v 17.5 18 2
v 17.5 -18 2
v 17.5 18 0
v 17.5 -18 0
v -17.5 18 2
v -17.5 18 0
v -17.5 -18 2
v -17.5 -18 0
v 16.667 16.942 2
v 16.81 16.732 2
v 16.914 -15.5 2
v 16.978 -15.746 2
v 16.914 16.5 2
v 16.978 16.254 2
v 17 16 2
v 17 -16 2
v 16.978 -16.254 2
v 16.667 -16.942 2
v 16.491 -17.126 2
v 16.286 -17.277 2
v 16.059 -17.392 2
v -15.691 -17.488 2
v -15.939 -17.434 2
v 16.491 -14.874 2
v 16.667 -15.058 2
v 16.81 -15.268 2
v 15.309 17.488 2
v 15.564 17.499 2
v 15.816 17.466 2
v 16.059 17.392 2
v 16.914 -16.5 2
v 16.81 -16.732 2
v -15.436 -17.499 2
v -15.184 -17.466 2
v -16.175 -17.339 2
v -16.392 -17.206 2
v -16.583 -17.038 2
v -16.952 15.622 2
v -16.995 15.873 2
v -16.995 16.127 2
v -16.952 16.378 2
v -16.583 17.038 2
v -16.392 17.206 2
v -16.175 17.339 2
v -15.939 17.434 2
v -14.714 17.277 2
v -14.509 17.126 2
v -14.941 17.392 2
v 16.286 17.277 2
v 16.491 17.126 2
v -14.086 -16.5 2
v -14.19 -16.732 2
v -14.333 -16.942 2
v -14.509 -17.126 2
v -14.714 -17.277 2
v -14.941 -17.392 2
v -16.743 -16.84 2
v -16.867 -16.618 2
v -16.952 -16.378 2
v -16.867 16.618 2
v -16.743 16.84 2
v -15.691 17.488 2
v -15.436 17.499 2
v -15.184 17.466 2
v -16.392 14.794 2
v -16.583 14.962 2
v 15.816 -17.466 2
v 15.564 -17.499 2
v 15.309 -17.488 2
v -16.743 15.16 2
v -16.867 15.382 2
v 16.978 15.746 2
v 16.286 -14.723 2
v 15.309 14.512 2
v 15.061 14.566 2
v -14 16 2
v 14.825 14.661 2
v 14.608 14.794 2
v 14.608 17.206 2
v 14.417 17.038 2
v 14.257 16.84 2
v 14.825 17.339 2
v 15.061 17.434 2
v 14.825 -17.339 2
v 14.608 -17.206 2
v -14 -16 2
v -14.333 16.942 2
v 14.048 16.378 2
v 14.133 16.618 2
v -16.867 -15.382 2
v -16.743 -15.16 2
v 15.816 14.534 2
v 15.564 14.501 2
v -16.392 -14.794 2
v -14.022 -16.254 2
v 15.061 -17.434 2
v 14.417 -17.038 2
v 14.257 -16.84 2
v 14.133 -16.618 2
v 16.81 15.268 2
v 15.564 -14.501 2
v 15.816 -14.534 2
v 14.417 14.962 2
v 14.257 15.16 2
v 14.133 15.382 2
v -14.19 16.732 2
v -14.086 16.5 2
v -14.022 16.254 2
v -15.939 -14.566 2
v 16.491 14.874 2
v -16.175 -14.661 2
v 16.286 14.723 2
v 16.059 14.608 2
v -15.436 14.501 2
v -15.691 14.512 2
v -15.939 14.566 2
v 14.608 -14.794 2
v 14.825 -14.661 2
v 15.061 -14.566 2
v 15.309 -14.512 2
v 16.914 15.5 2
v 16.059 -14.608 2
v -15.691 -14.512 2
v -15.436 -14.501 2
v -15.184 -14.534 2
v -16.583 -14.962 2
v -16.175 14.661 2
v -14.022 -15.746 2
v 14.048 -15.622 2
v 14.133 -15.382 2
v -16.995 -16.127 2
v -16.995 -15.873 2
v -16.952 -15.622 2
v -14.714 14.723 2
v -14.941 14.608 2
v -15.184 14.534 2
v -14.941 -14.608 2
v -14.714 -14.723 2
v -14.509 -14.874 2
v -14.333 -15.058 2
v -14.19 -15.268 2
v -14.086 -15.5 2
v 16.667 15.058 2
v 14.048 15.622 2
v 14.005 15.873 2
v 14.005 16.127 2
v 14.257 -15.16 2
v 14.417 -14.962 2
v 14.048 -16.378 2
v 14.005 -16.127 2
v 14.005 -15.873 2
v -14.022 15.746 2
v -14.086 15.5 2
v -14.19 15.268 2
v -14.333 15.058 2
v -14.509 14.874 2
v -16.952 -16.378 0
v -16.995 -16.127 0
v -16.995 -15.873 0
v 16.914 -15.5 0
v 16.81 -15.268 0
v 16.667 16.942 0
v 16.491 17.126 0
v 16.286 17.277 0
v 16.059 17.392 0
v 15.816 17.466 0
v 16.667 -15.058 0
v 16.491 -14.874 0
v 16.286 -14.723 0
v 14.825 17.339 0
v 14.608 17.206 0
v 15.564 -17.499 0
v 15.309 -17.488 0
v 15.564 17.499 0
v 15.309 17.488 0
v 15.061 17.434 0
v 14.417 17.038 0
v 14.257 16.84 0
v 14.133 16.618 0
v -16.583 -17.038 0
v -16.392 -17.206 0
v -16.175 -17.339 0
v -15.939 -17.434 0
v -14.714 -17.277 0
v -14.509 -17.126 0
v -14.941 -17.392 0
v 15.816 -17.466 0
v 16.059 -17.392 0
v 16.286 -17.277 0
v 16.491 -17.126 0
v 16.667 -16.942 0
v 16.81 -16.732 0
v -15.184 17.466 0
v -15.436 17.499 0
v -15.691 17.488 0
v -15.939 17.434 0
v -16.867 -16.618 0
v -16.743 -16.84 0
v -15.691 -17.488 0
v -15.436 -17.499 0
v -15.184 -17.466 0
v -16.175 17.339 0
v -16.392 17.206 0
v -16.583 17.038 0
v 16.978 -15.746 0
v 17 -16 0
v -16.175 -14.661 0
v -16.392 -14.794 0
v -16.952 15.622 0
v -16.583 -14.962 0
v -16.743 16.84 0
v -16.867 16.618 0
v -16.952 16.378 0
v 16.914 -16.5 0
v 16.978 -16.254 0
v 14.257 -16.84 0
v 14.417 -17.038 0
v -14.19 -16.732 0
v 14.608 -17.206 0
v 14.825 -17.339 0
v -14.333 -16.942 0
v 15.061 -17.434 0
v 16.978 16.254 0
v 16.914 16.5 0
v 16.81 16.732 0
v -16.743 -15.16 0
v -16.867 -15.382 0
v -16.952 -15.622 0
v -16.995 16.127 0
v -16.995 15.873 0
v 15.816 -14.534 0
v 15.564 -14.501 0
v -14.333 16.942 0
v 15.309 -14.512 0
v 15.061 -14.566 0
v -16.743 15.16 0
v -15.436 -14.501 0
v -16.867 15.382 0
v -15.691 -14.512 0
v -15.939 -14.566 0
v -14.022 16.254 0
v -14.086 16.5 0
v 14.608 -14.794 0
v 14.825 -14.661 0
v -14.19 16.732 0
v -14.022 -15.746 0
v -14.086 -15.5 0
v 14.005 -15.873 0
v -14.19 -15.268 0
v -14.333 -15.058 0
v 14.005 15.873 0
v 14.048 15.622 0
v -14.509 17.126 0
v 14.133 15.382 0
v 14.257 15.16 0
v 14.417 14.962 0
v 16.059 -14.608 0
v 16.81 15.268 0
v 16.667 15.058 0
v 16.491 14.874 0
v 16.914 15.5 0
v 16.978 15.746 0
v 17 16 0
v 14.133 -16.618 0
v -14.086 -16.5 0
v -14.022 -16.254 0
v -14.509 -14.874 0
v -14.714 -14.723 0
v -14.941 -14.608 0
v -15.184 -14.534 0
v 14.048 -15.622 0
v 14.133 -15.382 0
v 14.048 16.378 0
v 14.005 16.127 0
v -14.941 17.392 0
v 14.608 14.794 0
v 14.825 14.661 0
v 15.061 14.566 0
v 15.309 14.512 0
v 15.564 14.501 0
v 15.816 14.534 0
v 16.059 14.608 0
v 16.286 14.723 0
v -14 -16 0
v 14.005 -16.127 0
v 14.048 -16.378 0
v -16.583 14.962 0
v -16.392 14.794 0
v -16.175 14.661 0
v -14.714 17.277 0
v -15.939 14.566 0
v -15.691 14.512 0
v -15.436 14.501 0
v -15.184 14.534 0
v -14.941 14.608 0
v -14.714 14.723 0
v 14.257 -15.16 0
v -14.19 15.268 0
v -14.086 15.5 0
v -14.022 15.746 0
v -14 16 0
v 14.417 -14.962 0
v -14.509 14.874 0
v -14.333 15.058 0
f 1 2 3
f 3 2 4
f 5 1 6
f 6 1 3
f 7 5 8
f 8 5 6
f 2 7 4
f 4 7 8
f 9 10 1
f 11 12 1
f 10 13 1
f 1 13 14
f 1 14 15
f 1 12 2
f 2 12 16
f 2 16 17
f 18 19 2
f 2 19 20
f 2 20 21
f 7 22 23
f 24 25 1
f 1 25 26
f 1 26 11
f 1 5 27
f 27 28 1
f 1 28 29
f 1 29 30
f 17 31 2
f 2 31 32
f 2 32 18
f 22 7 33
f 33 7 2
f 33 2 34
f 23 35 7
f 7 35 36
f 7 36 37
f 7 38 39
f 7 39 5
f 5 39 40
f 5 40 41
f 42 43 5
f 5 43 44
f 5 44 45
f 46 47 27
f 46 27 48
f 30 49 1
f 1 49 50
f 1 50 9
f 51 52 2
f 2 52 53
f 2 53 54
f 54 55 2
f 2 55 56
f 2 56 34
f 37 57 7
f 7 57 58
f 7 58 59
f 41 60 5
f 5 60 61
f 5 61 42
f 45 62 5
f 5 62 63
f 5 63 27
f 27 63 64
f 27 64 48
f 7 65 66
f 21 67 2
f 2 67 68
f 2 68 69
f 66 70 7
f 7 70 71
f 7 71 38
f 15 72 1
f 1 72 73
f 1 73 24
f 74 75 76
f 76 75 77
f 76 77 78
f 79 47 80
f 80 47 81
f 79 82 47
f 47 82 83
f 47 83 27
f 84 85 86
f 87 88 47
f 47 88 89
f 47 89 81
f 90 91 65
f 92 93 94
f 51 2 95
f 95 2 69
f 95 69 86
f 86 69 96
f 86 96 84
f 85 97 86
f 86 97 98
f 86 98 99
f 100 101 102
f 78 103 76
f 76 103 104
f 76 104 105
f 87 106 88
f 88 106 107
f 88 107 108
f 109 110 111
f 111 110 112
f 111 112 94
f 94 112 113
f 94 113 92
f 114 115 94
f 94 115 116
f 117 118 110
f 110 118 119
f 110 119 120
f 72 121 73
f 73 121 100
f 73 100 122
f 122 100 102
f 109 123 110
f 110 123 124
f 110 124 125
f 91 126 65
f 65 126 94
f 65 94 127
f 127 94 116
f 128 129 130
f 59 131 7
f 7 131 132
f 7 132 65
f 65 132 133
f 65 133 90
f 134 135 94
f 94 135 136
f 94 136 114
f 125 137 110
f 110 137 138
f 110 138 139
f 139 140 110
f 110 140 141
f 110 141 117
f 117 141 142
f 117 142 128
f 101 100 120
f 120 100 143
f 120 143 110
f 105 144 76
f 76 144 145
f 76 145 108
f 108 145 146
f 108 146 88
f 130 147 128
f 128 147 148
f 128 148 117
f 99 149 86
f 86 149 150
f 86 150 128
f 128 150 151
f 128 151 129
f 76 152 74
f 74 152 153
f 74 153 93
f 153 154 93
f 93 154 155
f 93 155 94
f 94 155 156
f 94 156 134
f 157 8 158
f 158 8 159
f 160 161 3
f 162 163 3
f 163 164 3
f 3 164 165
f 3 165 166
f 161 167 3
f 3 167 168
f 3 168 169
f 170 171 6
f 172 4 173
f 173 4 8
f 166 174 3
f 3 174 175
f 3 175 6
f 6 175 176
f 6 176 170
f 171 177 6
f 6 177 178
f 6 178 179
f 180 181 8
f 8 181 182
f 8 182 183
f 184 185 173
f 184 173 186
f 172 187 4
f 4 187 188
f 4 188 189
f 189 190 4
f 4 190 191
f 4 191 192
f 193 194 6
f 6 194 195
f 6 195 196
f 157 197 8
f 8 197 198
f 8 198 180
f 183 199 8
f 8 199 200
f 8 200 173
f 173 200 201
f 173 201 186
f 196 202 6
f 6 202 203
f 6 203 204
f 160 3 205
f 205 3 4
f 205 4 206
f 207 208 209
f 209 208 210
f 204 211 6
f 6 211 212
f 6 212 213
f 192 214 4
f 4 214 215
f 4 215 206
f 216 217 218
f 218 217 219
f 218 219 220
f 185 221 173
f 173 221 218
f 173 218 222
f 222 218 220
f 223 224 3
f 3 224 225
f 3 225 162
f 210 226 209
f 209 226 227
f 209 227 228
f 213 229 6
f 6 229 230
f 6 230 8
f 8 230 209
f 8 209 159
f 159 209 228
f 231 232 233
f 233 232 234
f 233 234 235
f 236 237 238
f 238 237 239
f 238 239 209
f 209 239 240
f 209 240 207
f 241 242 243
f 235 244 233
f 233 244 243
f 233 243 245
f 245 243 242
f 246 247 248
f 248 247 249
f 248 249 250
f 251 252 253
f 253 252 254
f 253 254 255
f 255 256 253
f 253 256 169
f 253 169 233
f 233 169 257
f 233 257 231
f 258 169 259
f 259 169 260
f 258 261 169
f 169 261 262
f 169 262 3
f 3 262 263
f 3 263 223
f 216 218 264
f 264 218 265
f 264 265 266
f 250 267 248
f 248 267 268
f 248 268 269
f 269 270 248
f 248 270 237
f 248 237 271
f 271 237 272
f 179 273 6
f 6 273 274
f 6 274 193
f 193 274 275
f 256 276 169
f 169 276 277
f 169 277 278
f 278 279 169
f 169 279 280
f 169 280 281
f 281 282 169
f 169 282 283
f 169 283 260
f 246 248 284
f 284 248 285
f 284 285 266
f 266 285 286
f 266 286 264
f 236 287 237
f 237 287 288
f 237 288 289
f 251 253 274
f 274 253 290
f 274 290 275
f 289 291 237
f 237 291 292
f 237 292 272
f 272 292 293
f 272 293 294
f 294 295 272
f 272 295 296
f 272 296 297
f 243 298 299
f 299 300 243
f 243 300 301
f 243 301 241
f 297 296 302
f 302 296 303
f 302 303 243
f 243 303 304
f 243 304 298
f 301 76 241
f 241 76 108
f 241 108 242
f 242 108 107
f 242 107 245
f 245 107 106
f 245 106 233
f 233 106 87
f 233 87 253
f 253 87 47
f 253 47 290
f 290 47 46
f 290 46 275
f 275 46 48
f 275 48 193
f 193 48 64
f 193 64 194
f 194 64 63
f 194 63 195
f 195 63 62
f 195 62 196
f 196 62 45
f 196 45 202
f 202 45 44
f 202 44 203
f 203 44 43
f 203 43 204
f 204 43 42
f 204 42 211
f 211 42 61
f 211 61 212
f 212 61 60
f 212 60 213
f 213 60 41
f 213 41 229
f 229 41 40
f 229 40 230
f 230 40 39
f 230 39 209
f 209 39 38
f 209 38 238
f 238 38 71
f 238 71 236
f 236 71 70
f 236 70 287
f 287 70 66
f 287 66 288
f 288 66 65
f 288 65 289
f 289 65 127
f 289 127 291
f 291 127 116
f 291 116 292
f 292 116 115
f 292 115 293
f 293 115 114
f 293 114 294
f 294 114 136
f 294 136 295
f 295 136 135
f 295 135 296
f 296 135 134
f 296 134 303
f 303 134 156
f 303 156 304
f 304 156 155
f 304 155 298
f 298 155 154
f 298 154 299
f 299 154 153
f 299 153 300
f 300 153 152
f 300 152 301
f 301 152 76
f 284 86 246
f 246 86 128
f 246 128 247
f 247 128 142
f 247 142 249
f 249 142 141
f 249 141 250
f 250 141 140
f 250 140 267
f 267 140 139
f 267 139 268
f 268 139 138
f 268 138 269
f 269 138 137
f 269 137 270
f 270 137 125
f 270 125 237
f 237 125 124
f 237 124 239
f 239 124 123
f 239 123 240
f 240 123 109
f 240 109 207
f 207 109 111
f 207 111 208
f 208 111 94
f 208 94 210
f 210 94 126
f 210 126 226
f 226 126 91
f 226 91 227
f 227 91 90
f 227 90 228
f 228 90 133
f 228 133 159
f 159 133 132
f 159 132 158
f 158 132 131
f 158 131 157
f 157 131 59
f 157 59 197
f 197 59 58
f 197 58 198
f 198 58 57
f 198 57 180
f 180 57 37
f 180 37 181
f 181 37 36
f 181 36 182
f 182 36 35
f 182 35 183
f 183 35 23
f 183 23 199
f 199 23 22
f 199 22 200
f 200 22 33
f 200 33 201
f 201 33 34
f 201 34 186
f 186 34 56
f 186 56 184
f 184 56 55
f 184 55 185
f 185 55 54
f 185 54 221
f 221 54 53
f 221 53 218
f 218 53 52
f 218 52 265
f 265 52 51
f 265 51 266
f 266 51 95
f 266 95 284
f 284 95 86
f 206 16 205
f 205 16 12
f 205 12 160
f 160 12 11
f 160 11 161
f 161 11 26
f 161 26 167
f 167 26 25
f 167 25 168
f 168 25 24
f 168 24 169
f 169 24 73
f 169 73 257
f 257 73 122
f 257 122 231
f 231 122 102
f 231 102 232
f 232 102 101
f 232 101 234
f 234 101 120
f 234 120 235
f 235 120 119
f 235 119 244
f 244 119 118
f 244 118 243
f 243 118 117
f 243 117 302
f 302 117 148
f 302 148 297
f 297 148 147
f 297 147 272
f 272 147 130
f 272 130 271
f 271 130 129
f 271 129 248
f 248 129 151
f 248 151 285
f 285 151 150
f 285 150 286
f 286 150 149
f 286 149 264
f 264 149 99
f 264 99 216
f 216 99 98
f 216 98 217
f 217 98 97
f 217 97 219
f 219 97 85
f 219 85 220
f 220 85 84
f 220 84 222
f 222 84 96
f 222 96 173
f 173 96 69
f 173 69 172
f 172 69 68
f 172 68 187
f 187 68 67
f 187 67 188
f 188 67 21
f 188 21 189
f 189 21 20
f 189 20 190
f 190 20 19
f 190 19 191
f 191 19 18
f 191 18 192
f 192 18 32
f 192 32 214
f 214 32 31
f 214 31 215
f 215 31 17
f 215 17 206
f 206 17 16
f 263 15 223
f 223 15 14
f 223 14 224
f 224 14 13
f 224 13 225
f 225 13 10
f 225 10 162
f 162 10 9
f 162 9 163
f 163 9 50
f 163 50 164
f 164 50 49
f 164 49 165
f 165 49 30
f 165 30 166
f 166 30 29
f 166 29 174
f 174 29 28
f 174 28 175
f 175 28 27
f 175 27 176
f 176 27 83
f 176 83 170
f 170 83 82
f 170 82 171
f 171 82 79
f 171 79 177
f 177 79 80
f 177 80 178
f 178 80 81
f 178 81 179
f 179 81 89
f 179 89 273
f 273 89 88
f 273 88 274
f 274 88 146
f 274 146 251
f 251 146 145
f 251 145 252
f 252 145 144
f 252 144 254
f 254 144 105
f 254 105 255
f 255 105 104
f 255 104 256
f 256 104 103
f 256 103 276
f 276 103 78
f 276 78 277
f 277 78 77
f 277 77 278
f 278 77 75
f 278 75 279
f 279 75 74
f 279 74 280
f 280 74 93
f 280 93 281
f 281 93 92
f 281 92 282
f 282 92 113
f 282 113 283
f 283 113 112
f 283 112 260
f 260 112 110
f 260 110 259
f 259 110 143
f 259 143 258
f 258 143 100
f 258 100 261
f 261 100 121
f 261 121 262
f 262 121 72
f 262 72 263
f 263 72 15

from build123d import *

# Parameters (mm, degrees)
SKETCH_1_W          = 35
SKETCH_1_H          = 36
EXTRUDE_1_DEPTH     = 2
CUT_EXTRUDE_1_REACH = 27.184
SKETCH_2_R          = 1.5


with BuildPart() as part:
    # 草图1 → 凸台-拉伸1 (new body)
    with BuildSketch(Plane.XY):
        Rectangle(SKETCH_1_W, SKETCH_1_H)
    extrude(amount=EXTRUDE_1_DEPTH)

    # 草图2 → 切除-拉伸1 (cut, up to next)
    with BuildSketch(Plane.XY.offset(2), mode=Mode.PRIVATE) as cut_extrude_1_sk1:
        with Locations((-15.5, 16)):
            Circle(SKETCH_2_R)
    cut_extrude_1_tool1 = extrude(cut_extrude_1_sk1.sketch, amount=-CUT_EXTRUDE_1_REACH, mode=Mode.PRIVATE) & part.part
    # 草图2 → 切除-拉伸1 (cut, up to next)
    with BuildSketch(Plane.XY.offset(2), mode=Mode.PRIVATE) as cut_extrude_1_sk2:
        with Locations((15.5, 16)):
            Circle(SKETCH_2_R)
    cut_extrude_1_tool2 = extrude(cut_extrude_1_sk2.sketch, amount=-CUT_EXTRUDE_1_REACH, mode=Mode.PRIVATE) & part.part
    # 草图2 → 切除-拉伸1 (cut, up to next)
    with BuildSketch(Plane.XY.offset(2), mode=Mode.PRIVATE) as cut_extrude_1_sk3:
        with Locations((15.5, -16)):
            Circle(SKETCH_2_R)
    cut_extrude_1_tool3 = extrude(cut_extrude_1_sk3.sketch, amount=-CUT_EXTRUDE_1_REACH, mode=Mode.PRIVATE) & part.part
    # 草图2 → 切除-拉伸1 (cut, up to next)
    with BuildSketch(Plane.XY.offset(2), mode=Mode.PRIVATE) as cut_extrude_1_sk4:
        with Locations((-15.5, -16)):
            Circle(SKETCH_2_R)
    cut_extrude_1_tool4 = extrude(cut_extrude_1_sk4.sketch, amount=-CUT_EXTRUDE_1_REACH, mode=Mode.PRIVATE) & part.part
    add(cut_extrude_1_tool1.solids().sort_by_distance((-15.5, 16, 2))[0], mode=Mode.SUBTRACT)
    add(cut_extrude_1_tool2.solids().sort_by_distance((15.5, 16, 2))[0], mode=Mode.SUBTRACT)
    add(cut_extrude_1_tool3.solids().sort_by_distance((15.5, -16, 2))[0], mode=Mode.SUBTRACT)
    add(cut_extrude_1_tool4.solids().sort_by_distance((-15.5, -16, 2))[0], mode=Mode.SUBTRACT)


solid = part.part
